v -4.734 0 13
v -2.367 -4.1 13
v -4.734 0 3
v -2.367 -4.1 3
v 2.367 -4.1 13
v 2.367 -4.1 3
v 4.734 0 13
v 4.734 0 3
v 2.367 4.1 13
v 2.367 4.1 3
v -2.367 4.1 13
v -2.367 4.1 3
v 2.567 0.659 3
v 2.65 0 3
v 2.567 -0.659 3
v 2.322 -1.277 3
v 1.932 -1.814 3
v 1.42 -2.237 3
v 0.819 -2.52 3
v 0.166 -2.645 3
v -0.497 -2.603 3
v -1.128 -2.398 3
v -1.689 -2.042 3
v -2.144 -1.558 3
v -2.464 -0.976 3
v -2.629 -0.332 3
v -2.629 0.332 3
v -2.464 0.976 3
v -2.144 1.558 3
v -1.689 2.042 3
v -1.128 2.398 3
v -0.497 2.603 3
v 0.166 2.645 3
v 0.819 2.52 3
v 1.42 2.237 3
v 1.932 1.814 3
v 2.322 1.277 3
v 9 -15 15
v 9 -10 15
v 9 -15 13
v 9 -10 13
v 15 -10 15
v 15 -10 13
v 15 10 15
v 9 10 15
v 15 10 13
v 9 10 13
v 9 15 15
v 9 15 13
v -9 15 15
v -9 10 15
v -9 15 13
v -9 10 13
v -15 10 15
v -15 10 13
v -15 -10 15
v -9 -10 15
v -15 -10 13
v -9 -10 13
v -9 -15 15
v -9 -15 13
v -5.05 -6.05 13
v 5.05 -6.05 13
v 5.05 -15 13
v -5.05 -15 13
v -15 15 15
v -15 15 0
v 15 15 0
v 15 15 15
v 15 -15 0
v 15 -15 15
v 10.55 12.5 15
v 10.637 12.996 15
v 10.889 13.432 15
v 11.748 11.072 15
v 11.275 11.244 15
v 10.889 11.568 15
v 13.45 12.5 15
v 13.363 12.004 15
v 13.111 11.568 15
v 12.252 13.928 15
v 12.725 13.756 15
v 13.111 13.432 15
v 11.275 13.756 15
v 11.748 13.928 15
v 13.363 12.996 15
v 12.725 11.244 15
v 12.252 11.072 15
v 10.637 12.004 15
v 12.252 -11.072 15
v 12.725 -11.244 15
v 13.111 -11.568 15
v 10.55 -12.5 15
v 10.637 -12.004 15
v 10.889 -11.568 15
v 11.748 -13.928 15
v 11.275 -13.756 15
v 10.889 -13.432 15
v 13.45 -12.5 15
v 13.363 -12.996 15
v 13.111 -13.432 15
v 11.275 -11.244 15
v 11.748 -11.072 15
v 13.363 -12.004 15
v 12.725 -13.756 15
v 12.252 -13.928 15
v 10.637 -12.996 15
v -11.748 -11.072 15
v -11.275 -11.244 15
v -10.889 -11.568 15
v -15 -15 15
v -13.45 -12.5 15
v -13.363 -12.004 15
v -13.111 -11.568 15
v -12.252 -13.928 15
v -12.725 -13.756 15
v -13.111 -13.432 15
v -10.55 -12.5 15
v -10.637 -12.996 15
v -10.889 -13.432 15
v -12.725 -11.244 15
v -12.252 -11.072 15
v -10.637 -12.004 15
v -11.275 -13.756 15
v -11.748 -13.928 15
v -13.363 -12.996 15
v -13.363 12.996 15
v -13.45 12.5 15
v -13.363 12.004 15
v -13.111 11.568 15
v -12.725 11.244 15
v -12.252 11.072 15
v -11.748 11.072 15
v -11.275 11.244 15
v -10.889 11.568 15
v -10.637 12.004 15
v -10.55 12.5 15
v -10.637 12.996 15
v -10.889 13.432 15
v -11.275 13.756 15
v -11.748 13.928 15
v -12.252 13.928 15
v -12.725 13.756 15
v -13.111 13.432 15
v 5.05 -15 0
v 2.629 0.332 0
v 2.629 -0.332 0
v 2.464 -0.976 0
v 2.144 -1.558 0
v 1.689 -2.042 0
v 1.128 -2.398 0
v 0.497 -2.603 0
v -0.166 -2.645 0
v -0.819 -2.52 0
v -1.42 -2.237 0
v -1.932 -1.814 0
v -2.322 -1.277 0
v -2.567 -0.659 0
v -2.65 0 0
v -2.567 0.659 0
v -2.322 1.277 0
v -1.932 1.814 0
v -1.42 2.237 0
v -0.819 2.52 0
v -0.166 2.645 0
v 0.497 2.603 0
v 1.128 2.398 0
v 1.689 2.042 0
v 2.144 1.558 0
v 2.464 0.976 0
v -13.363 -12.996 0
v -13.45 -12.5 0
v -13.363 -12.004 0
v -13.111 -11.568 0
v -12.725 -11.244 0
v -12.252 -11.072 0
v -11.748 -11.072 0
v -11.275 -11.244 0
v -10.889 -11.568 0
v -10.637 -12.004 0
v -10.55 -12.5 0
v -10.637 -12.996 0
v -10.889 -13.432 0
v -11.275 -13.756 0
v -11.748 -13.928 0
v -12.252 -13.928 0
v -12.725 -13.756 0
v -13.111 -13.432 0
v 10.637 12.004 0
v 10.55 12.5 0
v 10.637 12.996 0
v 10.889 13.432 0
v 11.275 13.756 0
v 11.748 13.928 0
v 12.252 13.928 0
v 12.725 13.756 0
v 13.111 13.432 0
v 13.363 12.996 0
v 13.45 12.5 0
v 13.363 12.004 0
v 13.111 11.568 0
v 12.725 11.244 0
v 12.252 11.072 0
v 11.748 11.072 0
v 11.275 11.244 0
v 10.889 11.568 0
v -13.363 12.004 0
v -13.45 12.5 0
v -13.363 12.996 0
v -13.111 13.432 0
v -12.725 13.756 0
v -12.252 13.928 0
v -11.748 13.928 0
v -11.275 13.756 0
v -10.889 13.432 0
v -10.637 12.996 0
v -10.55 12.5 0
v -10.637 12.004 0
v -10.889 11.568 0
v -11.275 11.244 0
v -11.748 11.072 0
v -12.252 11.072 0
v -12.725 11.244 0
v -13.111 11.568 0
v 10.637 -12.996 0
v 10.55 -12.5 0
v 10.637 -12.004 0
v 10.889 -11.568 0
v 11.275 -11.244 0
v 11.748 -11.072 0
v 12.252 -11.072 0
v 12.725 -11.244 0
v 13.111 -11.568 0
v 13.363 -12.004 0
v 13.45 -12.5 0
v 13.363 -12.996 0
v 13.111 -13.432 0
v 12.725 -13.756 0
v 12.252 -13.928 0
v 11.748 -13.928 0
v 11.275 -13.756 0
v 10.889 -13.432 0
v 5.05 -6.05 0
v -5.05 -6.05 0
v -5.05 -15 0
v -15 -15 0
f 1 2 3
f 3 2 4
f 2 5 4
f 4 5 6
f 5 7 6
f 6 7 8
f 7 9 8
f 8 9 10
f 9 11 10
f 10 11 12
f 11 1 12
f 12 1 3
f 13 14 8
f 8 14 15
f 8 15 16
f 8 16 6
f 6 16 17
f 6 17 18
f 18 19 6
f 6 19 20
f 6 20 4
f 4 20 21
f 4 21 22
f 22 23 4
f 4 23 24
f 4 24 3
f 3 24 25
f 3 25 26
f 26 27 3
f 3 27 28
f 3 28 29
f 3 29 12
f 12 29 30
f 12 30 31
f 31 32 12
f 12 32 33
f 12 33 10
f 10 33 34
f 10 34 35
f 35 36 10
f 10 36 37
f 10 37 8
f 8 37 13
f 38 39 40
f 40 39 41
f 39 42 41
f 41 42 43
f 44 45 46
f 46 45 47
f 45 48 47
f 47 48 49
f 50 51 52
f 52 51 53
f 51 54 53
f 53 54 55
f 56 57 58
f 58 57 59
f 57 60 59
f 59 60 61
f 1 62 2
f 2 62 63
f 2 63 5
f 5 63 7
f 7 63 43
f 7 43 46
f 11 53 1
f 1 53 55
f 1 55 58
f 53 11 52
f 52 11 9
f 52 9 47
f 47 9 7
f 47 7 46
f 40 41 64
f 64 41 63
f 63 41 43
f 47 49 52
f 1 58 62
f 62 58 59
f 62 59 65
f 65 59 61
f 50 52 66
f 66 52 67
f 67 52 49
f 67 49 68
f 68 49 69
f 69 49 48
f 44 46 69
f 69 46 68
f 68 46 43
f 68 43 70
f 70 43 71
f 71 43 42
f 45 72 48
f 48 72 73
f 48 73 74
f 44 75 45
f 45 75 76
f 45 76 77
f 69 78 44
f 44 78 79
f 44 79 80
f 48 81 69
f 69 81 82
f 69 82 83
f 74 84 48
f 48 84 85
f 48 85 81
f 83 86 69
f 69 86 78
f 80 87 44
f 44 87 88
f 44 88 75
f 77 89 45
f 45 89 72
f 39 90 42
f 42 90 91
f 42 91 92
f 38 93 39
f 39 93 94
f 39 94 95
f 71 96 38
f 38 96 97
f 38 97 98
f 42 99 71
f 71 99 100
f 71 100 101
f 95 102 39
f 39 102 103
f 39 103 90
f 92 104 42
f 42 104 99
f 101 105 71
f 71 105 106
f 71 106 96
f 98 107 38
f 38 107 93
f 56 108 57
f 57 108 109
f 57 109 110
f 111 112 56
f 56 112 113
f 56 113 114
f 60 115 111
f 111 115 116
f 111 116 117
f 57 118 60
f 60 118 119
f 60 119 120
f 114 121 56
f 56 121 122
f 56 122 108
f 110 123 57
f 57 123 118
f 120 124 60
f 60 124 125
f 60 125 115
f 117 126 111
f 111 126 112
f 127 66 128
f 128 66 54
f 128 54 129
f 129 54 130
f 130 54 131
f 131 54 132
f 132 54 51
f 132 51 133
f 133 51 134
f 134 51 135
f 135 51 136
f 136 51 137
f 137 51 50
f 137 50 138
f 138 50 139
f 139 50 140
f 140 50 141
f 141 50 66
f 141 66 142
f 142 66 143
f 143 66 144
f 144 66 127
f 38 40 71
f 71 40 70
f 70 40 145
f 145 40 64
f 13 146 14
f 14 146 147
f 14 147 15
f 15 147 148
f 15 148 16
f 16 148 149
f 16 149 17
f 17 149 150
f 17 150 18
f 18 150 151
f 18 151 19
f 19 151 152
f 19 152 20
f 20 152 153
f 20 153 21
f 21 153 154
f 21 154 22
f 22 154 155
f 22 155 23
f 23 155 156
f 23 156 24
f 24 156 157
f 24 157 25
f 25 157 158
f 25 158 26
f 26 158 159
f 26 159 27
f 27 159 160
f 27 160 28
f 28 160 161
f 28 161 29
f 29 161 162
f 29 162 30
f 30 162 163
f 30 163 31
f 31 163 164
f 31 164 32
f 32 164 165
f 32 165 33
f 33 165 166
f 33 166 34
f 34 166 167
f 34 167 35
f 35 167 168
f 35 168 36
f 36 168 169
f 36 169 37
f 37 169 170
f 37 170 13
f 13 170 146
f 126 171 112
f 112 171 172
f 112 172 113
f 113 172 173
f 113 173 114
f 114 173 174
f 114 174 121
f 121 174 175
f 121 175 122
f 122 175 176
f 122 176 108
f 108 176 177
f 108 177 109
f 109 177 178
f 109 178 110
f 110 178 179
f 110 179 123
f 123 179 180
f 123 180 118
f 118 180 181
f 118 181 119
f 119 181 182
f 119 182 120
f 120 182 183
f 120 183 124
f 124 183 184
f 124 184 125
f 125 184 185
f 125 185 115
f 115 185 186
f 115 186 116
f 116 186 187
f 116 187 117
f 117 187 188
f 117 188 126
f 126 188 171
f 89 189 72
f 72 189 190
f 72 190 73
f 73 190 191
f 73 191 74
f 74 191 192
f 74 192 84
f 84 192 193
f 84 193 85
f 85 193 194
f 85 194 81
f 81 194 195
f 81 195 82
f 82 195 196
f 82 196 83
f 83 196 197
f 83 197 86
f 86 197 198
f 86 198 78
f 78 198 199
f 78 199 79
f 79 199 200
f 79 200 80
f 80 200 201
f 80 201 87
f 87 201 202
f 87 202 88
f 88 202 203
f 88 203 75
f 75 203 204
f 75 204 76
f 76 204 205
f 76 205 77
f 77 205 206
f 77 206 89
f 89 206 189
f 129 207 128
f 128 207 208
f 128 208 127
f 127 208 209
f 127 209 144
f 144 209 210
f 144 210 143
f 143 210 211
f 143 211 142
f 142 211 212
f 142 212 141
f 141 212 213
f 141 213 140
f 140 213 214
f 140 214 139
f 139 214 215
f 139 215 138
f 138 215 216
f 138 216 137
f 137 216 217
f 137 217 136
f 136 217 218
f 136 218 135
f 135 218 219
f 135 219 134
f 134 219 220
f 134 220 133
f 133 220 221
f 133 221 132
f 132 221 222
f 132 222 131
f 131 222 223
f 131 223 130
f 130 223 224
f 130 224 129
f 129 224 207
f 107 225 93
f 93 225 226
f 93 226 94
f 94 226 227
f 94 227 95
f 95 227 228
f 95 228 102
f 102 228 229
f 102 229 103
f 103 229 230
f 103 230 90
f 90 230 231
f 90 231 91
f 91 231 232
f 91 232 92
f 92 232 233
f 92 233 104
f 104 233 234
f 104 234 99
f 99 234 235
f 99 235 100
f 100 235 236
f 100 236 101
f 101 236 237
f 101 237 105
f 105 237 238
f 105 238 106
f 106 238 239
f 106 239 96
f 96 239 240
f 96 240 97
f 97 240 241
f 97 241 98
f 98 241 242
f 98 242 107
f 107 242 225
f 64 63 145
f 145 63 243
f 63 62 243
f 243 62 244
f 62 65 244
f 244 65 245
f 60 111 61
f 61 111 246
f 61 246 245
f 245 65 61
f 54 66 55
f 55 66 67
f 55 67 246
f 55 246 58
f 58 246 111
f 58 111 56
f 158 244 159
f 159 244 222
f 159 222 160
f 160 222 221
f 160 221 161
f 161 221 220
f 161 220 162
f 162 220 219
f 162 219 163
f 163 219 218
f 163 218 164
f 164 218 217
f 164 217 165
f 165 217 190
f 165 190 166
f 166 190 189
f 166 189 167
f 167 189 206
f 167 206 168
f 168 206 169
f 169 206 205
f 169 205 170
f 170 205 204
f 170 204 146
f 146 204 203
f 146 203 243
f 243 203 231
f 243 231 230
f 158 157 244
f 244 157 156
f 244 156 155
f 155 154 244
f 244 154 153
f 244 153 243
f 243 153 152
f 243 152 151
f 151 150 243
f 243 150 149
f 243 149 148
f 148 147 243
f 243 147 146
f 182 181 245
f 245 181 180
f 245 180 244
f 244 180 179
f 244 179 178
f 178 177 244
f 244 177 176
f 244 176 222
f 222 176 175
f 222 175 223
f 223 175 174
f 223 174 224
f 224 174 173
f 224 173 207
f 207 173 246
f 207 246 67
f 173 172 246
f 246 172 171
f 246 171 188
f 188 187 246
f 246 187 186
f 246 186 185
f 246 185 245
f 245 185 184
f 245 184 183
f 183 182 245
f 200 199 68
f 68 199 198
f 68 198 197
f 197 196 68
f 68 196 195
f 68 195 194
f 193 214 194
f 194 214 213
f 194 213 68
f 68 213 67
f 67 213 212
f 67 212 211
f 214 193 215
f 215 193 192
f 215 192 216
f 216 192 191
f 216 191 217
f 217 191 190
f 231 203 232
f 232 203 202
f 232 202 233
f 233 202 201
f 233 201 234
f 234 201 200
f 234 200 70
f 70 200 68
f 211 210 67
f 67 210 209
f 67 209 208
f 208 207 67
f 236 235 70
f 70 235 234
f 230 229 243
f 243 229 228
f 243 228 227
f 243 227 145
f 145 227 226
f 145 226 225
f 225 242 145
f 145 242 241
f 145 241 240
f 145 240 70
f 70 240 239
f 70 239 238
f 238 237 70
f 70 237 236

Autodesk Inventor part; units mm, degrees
ref_plane "YZ Plane" through (0, 0, 0) normal (1, 0, 0) x (0, 1, 0)
ref_plane "XZ Plane" through (0, 0, 0) normal (0, 1, 0) x (-1, 0, 0)
ref_plane "XY Plane" through (0, 0, 0) normal (0, 0, 1) x (1, 0, 0)
sketch "Sketch1" plane through (0, 0, 0) normal (0, 0, 1) x (1, 0, 0)
  line L0 (-15, -15) -> (-15, 15)
  line L1 (-15, 15) -> (15, 15)
  line L2 (15, 15) -> (15, -15)
  line L3 (15, -15) -> (-15, 15) construction
  line L4 (-15, -15) -> (15, 15) construction
  line L5 (0, 0) -> (8.0802, 0) construction
  line L6 (0, 0) -> (0, 7.2946) construction
  line L7 (-5.05, -20.05) -> (5.05, -20.05)
  line L8 (5.05, -20.05) -> (5.05, -6.05)
  line L9 (5.05, -6.05) -> (-5.05, -6.05)
  line L10 (-5.05, -6.05) -> (-5.05, -20.05)
  line L11 (-5.05, -20.05) -> (5.05, -6.05) construction
  line L12 (5.05, -20.05) -> (-5.05, -6.05) construction
  line L13 (15, -15) -> (5.05, -15)
  line L14 (-5.05, -15) -> (-15, -15)
  point P0 (-12, -12.5)
  point P1 (12, -12.5)
  point P2 (-12, 12.5)
  point P3 (12, 12.5)
  point P4 (0, -13.05)
  dimension "d0" = 30
  dimension "d1" = 30
  dimension "d4" = 24
  dimension "d7" = 25
  dimension "d10" = 10.1
  dimension "d11" = 14
extrude "Extrusion1" add sketch "Sketch1" along normal blind 15 contours L0 L1 L2 L13 L8 L9 L10 L14
hole "Hole1" at (12, 12.5, 0) at (-12, 12.5, 0) at (-12, -12.5, 0) at (12, -12.5, 0) direction (0, 0, 1) diameter 2.9 end through all
sketch "Sketch2" plane through (0, 0, 0) normal (0, 0, -1) x (-1, 0, 0)
  point P0 (0, 0)
  point P1 (0, 0)
hole "Hole2" at (0, 0, 0) direction (0, 0, 1) diameter 5.3 end through all clearance for "Flat Head Machine Screw" size "M5" standard "Ansi Metric M Profile"
sketch "Sketch3" plane through (0, 0, 15) normal (0, 0, 1) x (1, 0, 0)
  line L0 (15, 15) -> (-15, 15) projected
  line L1 (-15, 15) -> (-9, 15)
  line L2 (-9, 15) -> (-9, 10)
  line L3 (-9, 10) -> (-15, 10)
  line L4 (-15, 10) -> (-15, 15)
  line L5 (15, -15) -> (15, 15) projected
  line L6 (15, 15) -> (9, 15)
  line L7 (9, 15) -> (9, 10)
  line L8 (9, 10) -> (15, 10)
  line L9 (15, 10) -> (15, 15)
  line L10 (-15, -15) -> (-5.05, -15) projected
  line L11 (-15, -15) -> (-9, -15)
  line L12 (-9, -15) -> (-9, -10)
  line L13 (-9, -10) -> (-15, -10)
  line L14 (-15, -10) -> (-15, -15)
  line L15 (15, -15) -> (9, -15)
  line L16 (9, -15) -> (9, -10)
  line L17 (9, -10) -> (15, -10)
  line L18 (15, -10) -> (15, -15)
  circle A0 centre (0, 0) radius 2.65 projected
  circle A1 centre (-12, -12.5) radius 1.45 projected
  circle A2 centre (12, 12.5) radius 1.45 projected
  circle A3 centre (-12, 12.5) radius 1.45 projected
  circle A4 centre (12, -12.5) radius 1.45 projected
  line L19 (15, 15) -> (-15, 15) projected
  line L20 (-15, 15) -> (-15, -15) projected
  line L21 (-15, -15) -> (-5.05, -15) projected
  line L22 (-5.05, -15) -> (-5.05, -6.05) projected
  line L23 (-5.05, -6.05) -> (5.05, -6.05) projected
  line L24 (5.05, -6.05) -> (5.05, -15) projected
  line L25 (5.05, -15) -> (15, -15) projected
  line L26 (15, -15) -> (15, 15) projected
  dimension "d28" = 6
  dimension "d29" = 5
  dimension "d30" = 6
  dimension "d31" = 5
  dimension "d32" = 6
  dimension "d33" = 5
extrude "Extrusion2" cut sketch "Sketch3" against normal blind 2 contours L7 L8 L5 L17 L16 L25 L24 L23 L22 L10 L12 L13 L20 L3 L2 L0
sketch "Sketch4" plane through (0, 0, 13) normal (0, 0, 1) x (1, 0, 0)
  line L0 (2.3671, 4.1) -> (4.7343, 0)
  line L1 (4.7343, 0) -> (2.3671, -4.1)
  line L2 (2.3671, -4.1) -> (-2.3671, -4.1)
  line L3 (-2.3671, -4.1) -> (-4.7343, 0)
  line L4 (-4.7343, 0) -> (-2.3671, 4.1)
  line L5 (-2.3671, 4.1) -> (2.3671, 4.1)
  point P0 (0, 0)
  point P1 (0, 0)
  dimension "d36" = 8.2
extrude "Extrusion3" cut sketch "Sketch4" against normal blind 10
properties part number "front_door-webcam(FIT0701)-mount"
